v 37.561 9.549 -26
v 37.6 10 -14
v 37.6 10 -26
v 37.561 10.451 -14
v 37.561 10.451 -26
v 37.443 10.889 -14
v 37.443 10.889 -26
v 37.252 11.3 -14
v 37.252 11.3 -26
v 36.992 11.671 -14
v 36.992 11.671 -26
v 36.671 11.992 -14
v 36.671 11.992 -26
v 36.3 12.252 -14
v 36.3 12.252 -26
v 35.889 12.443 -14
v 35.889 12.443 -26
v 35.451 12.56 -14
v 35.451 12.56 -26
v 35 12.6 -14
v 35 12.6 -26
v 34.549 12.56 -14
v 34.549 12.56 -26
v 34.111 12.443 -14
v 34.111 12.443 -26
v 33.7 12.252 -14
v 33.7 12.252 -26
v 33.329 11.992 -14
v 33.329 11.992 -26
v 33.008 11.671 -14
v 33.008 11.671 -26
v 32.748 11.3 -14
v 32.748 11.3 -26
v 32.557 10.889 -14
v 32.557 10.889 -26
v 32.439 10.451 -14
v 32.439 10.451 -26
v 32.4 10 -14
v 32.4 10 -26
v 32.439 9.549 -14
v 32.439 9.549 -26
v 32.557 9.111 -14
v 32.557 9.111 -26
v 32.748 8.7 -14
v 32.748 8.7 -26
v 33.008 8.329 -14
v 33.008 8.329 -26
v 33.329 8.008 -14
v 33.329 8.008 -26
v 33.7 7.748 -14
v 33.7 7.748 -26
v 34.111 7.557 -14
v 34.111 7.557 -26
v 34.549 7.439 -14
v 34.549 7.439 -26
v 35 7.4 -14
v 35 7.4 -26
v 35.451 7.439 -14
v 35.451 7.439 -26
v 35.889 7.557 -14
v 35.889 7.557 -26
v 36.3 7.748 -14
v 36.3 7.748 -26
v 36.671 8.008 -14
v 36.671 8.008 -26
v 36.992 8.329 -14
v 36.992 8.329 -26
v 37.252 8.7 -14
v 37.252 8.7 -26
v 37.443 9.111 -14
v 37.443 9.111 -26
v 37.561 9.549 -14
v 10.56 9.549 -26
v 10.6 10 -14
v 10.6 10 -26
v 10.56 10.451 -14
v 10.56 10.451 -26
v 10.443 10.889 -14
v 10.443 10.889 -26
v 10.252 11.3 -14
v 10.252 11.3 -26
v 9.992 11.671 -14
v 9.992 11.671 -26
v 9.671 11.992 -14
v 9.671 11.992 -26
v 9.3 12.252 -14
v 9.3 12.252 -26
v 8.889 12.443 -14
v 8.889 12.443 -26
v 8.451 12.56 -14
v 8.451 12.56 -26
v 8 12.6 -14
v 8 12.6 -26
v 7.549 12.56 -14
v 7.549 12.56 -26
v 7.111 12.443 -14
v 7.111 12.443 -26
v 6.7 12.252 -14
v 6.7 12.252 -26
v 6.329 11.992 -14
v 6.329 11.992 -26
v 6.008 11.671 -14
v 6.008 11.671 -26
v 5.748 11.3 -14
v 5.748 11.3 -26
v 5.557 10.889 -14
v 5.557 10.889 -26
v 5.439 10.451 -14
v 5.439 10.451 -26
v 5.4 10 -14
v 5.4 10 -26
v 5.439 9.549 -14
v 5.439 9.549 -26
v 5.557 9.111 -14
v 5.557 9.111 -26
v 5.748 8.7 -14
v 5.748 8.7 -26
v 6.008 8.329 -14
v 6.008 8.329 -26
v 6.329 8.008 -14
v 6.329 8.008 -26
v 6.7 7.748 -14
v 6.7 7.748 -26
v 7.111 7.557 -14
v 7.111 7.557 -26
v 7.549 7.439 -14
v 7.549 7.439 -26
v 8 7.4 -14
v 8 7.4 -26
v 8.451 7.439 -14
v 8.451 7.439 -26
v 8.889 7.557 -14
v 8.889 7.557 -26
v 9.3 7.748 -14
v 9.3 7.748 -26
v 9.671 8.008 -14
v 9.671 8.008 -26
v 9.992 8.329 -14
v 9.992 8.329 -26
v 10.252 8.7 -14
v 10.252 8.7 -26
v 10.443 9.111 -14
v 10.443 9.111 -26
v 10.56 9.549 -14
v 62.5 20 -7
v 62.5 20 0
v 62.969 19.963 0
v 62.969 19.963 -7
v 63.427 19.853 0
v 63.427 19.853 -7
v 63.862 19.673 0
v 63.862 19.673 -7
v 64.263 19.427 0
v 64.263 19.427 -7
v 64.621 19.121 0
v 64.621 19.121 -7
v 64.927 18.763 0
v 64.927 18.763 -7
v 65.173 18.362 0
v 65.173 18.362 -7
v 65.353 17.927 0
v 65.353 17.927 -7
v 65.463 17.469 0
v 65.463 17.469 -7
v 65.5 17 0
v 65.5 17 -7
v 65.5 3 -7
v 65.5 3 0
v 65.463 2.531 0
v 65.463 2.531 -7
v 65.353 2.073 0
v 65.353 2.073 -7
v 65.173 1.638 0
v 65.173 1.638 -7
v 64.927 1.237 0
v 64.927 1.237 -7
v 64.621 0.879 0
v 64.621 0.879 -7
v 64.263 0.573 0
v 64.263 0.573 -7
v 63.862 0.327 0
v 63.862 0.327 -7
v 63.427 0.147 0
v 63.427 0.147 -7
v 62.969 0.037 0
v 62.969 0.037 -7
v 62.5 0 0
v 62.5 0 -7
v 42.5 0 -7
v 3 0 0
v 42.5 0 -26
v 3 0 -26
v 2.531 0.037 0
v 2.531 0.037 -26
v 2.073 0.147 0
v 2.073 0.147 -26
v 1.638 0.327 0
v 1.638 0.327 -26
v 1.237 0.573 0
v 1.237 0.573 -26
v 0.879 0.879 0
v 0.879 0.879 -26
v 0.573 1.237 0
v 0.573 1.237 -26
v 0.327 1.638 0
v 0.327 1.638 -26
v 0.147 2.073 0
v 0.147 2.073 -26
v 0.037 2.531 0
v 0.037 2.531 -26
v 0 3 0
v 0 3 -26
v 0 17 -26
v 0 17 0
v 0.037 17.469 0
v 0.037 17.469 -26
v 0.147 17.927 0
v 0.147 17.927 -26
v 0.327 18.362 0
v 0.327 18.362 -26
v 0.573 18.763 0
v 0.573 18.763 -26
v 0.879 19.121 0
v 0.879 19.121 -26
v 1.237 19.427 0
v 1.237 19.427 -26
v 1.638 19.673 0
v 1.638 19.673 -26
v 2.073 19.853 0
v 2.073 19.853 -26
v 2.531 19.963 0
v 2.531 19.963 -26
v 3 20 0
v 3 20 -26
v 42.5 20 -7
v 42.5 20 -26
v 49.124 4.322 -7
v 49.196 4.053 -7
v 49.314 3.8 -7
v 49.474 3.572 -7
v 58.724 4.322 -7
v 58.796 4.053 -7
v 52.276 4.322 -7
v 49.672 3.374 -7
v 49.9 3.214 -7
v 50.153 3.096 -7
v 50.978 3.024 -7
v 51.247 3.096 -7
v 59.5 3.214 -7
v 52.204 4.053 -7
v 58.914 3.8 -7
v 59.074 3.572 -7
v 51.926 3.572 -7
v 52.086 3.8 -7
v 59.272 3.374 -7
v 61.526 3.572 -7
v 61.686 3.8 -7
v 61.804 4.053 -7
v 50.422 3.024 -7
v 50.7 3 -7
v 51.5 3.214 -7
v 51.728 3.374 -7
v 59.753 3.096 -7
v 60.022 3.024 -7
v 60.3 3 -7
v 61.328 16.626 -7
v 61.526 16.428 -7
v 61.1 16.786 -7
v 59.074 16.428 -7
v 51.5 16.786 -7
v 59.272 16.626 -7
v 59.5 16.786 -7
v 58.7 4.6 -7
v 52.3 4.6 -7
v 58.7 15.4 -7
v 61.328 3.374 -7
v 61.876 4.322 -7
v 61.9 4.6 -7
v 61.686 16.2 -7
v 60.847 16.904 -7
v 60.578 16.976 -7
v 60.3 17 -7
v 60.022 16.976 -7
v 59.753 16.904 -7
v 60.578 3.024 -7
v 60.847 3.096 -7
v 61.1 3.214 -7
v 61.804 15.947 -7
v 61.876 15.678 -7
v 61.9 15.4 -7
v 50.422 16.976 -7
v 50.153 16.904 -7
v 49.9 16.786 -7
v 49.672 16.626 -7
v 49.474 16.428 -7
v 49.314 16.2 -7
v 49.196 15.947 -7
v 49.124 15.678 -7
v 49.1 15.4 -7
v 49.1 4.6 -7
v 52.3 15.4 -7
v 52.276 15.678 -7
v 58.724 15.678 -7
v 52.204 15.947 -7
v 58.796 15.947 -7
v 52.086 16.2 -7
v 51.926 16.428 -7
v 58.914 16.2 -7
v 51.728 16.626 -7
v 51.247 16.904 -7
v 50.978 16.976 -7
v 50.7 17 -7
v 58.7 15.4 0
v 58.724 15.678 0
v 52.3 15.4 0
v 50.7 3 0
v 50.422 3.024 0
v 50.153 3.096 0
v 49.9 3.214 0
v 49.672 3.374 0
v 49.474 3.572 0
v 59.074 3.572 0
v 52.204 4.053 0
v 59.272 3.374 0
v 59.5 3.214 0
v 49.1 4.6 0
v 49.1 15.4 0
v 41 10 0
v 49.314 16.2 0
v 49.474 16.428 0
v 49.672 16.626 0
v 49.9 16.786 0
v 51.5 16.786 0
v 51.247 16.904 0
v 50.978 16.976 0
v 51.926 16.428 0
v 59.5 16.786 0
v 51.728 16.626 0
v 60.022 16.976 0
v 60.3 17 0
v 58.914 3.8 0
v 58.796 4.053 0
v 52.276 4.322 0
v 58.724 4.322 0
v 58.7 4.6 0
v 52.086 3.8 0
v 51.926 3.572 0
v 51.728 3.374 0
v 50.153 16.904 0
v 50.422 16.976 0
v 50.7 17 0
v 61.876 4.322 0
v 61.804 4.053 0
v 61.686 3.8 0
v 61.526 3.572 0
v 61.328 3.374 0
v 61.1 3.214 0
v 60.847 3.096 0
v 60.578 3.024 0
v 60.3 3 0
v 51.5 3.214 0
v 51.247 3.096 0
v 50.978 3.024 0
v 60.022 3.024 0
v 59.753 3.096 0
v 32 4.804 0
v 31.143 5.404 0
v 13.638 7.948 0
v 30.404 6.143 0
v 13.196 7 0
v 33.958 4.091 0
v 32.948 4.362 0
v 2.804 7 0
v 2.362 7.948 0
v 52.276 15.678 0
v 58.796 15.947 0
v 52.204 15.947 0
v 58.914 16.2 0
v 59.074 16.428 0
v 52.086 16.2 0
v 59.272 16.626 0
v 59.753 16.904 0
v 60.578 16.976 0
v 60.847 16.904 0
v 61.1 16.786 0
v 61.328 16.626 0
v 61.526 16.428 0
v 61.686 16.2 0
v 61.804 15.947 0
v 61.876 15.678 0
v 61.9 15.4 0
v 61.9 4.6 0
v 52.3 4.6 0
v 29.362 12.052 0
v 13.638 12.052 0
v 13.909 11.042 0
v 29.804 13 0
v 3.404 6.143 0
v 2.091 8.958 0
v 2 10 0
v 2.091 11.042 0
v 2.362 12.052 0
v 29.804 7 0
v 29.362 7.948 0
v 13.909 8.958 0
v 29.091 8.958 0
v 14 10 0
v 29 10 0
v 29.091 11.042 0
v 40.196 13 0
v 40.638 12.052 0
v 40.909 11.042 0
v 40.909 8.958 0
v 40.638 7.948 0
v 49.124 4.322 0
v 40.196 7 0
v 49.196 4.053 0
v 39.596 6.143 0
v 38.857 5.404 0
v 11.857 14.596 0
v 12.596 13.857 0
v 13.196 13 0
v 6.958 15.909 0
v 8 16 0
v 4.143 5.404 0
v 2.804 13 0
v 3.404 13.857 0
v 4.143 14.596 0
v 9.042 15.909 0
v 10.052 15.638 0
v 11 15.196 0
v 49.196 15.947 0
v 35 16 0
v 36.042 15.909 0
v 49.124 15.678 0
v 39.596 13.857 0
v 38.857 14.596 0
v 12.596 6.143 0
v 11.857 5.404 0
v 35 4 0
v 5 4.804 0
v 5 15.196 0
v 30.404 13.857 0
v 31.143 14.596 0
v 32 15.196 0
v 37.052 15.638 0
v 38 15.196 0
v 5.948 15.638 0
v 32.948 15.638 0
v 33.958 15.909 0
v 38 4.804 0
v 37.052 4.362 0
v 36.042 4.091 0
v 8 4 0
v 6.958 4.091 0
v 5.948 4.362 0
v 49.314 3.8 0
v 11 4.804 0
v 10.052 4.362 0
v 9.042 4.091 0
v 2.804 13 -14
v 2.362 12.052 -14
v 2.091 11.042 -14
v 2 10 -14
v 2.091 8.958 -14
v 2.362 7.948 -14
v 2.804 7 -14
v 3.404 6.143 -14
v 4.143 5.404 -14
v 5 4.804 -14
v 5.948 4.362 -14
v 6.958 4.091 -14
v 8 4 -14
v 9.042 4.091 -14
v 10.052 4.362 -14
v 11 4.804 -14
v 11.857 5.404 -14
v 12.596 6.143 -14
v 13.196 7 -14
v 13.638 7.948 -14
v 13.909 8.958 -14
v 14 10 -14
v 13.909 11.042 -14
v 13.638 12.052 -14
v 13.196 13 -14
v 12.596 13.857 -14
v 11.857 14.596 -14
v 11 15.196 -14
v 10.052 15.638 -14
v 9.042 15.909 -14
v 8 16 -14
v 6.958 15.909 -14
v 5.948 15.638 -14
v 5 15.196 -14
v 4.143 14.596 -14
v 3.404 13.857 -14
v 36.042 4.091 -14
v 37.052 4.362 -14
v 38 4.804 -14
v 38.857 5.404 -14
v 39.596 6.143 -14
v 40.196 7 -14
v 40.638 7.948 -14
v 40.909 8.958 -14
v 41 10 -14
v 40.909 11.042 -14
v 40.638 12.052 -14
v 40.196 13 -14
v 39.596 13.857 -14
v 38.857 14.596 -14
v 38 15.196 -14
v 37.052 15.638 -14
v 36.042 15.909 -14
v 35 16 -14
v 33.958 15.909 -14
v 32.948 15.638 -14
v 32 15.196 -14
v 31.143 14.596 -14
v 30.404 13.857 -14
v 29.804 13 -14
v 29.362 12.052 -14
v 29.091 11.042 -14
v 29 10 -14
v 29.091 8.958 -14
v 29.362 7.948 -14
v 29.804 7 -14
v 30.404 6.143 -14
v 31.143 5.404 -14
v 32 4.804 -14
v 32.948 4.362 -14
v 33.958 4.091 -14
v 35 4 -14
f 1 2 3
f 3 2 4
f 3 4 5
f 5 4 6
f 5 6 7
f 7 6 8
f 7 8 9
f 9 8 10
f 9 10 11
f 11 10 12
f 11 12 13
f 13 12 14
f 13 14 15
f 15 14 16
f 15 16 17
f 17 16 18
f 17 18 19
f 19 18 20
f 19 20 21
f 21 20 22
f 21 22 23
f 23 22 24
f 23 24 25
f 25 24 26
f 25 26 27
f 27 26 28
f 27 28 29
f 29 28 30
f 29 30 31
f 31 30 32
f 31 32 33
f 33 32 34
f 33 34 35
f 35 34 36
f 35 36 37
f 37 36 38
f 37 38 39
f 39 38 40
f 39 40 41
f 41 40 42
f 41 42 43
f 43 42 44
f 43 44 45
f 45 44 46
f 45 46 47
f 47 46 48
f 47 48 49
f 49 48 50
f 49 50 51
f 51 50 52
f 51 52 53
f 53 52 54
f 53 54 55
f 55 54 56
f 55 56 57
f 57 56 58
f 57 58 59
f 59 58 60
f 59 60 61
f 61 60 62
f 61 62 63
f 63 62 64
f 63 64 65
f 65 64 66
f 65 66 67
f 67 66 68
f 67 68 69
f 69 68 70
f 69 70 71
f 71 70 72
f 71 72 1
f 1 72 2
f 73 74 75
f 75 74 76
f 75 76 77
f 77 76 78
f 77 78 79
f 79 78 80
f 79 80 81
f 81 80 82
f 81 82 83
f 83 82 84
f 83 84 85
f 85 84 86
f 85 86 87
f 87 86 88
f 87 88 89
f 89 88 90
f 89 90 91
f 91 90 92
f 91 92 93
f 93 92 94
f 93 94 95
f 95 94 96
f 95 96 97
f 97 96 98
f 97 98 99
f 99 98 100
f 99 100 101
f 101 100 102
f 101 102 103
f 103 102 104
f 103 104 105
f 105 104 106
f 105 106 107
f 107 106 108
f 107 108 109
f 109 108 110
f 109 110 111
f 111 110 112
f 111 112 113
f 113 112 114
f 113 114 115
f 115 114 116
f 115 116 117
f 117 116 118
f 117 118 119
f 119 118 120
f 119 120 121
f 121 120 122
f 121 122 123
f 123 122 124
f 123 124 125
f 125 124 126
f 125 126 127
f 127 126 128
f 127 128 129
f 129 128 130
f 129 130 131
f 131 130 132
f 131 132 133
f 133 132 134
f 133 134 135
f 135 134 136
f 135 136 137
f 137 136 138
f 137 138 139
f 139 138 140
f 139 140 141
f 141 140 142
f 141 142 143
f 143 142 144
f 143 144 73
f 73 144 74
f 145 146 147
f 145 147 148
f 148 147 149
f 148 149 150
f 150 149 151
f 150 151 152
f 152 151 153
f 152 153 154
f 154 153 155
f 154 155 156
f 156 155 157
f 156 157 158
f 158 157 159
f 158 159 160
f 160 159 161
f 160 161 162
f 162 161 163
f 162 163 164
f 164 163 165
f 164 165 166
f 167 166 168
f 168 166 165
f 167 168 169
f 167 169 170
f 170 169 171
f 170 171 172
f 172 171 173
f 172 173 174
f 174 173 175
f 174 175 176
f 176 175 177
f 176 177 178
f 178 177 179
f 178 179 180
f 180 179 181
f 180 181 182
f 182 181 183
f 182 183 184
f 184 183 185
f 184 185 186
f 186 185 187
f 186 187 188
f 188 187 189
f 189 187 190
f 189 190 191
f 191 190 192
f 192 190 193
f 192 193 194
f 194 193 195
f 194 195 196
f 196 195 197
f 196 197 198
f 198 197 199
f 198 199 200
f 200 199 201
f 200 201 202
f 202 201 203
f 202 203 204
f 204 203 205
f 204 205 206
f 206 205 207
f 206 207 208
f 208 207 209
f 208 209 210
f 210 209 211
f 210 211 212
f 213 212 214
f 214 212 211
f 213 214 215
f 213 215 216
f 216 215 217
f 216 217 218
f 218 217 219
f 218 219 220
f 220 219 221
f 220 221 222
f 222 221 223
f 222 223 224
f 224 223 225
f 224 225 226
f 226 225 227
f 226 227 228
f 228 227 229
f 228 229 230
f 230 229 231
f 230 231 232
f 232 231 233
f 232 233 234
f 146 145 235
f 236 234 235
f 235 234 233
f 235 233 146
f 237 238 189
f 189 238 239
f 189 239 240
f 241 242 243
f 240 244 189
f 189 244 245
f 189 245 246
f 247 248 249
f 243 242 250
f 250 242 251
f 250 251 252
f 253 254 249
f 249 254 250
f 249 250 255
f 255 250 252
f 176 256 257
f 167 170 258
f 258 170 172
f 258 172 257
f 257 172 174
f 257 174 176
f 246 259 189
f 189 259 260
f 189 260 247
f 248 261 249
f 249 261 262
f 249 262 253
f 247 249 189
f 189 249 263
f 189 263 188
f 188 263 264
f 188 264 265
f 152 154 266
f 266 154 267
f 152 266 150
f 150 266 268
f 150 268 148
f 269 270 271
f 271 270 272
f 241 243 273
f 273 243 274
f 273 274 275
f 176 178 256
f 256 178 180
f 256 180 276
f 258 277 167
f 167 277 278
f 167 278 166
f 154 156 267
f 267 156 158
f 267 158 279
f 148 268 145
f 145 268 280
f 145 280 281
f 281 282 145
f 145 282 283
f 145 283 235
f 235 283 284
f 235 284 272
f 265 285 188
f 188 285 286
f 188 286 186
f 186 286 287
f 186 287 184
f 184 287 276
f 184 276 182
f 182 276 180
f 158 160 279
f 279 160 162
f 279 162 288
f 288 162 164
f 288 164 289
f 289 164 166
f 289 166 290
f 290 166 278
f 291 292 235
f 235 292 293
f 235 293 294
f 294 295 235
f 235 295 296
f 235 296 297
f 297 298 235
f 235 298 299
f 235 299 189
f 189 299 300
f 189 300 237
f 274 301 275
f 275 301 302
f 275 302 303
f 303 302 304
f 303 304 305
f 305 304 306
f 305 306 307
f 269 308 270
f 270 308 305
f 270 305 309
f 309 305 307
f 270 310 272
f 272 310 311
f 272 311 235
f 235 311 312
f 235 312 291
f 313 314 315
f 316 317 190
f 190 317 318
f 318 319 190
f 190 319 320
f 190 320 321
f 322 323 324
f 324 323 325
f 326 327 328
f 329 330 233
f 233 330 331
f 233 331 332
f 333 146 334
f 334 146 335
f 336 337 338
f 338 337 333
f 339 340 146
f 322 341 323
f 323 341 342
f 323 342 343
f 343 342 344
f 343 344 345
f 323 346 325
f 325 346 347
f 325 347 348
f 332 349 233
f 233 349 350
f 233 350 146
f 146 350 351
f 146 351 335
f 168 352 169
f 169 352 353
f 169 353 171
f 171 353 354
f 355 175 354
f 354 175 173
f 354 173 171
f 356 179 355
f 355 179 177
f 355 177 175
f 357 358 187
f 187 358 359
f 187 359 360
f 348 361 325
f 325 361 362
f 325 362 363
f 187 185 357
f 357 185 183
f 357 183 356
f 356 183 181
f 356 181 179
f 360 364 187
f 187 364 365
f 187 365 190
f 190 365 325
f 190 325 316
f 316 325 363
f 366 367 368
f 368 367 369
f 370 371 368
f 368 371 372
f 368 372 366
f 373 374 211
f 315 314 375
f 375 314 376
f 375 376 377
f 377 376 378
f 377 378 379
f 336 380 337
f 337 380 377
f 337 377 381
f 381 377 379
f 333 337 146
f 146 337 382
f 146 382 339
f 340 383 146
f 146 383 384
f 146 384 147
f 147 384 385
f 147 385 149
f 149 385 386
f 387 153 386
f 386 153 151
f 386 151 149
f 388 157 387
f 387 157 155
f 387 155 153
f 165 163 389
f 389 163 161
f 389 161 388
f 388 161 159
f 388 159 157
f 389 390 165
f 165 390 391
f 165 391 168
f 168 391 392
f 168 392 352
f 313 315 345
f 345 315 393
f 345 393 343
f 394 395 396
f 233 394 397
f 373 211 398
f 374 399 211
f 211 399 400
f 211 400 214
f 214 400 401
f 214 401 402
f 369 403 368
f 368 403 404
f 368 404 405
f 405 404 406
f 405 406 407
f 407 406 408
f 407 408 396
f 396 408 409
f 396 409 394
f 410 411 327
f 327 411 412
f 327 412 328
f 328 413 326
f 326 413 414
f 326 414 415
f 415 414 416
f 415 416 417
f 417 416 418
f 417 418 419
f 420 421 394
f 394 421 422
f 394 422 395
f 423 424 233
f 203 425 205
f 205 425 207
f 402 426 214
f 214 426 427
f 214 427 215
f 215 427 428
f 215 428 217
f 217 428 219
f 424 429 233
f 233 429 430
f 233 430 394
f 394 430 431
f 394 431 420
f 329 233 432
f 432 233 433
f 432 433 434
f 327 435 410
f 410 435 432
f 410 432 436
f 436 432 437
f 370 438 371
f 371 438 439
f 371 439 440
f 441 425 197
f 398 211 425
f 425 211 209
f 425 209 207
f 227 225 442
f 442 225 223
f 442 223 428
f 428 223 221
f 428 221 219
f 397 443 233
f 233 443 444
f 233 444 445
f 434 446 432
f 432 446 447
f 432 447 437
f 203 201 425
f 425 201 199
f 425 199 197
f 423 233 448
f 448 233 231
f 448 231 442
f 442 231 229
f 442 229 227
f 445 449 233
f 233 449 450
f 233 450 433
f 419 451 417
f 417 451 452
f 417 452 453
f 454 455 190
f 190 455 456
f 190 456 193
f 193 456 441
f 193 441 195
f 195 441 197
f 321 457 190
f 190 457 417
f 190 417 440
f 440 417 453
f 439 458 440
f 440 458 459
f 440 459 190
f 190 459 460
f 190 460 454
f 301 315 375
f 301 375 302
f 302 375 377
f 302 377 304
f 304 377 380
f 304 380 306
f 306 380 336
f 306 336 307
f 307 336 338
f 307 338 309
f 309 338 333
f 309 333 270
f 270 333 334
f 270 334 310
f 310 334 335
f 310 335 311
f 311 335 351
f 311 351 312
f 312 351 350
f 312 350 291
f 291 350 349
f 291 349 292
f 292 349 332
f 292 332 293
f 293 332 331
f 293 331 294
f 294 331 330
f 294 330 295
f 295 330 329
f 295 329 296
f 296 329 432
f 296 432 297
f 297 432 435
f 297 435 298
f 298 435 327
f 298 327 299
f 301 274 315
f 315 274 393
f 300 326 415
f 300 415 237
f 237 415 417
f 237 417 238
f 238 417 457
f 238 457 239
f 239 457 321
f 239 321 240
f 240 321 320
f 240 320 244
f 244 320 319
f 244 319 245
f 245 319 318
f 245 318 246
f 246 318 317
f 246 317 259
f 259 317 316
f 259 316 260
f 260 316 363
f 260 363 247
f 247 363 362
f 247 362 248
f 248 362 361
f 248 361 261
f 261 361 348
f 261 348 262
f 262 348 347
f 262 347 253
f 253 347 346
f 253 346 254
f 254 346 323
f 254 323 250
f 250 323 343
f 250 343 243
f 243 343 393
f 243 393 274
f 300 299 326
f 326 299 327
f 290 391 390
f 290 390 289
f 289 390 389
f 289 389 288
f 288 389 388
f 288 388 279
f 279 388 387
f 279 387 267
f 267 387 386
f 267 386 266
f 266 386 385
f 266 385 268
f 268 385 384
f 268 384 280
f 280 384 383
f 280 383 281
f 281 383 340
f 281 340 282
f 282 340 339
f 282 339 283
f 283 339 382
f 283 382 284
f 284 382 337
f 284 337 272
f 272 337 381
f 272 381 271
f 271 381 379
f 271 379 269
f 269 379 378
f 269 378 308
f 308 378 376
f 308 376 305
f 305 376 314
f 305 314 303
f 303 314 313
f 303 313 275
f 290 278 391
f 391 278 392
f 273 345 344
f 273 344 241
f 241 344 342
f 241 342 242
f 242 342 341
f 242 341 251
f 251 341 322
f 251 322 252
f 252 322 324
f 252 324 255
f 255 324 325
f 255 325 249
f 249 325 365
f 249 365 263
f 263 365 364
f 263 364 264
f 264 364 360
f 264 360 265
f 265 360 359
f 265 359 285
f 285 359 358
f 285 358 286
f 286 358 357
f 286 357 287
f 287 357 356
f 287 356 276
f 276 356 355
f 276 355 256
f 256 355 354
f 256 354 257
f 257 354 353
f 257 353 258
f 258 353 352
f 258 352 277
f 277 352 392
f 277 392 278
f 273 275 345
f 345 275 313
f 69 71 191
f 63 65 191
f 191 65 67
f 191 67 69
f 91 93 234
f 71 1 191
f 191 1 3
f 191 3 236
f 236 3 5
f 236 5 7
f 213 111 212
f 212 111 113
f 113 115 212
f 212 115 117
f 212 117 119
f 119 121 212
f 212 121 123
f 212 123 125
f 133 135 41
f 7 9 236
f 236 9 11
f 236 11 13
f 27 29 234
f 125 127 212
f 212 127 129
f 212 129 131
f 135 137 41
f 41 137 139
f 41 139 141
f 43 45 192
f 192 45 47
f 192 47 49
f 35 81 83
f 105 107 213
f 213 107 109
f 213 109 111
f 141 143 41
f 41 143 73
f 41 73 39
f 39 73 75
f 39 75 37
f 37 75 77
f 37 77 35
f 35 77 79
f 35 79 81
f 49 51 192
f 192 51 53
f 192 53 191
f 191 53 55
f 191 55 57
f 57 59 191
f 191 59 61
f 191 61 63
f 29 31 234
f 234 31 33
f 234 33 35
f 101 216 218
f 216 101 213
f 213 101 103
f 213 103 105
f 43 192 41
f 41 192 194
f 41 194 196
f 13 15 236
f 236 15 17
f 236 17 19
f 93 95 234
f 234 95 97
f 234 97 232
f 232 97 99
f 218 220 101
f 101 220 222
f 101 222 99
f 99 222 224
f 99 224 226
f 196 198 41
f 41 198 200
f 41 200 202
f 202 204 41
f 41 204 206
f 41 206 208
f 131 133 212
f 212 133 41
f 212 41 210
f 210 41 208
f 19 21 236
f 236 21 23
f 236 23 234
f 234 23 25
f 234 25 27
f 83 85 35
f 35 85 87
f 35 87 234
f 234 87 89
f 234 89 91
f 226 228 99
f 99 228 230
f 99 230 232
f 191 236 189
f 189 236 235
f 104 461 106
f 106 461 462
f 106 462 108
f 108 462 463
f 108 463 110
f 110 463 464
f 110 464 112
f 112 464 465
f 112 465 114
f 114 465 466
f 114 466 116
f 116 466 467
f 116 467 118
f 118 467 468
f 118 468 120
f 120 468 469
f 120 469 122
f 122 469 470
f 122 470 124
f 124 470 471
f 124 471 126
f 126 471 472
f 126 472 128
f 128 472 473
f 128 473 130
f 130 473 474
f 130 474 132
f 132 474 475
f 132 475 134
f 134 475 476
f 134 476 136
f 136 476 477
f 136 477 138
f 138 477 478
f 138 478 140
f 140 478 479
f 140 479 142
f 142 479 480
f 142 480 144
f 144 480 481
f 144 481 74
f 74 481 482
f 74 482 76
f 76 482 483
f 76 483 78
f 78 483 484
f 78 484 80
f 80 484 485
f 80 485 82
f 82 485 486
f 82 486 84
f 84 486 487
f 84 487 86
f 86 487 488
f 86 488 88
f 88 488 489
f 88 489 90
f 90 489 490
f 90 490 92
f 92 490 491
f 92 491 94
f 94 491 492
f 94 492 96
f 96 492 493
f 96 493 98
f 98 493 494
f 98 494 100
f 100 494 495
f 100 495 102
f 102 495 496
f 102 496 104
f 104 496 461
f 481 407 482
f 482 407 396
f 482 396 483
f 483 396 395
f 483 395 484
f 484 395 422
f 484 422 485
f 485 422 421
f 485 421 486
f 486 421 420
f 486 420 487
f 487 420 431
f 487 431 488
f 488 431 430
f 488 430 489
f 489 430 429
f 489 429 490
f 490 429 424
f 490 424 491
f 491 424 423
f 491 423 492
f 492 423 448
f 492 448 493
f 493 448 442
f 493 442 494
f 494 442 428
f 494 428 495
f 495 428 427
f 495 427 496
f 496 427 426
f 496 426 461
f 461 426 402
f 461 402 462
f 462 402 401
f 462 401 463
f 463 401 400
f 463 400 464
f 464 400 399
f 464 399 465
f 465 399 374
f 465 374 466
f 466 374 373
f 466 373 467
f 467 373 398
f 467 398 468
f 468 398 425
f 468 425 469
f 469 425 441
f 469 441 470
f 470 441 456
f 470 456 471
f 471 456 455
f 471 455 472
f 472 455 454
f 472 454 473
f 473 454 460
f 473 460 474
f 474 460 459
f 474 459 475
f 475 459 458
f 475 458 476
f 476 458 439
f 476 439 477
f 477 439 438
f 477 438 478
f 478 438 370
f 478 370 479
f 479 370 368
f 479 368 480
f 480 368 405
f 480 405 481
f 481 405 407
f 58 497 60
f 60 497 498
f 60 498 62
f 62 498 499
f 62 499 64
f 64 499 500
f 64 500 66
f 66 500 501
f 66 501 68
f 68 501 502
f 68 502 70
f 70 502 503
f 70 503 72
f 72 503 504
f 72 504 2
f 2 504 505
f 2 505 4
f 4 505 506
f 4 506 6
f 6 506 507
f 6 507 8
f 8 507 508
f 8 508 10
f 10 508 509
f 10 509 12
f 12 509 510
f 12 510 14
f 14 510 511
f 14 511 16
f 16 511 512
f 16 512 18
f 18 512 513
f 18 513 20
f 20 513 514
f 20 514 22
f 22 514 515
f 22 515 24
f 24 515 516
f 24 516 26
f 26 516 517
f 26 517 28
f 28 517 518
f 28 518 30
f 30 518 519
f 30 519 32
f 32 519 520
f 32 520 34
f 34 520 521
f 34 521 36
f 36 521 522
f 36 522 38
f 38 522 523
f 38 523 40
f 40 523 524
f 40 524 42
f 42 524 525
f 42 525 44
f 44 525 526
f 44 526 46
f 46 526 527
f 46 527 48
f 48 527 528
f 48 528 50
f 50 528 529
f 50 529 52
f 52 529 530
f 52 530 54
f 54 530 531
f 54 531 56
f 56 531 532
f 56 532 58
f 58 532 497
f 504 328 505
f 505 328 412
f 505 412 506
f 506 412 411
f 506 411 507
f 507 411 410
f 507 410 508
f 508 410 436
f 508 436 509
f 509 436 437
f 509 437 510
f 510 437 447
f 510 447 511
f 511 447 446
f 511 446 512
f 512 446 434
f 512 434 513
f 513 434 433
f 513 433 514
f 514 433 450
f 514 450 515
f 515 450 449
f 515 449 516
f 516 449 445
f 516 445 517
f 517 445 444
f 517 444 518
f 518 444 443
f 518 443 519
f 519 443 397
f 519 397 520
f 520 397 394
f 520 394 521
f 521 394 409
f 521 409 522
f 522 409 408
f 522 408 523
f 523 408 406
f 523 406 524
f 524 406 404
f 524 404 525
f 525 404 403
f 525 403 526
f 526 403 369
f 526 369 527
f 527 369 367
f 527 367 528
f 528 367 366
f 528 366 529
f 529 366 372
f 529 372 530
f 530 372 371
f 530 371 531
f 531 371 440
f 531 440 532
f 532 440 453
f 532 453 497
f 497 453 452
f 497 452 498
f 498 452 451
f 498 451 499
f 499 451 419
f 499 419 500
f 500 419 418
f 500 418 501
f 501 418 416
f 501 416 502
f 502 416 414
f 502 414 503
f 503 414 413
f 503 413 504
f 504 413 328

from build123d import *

# Parameters (mm, degrees)
SKETCH1_R           = 2.6
BOSS_EXTRUDE1_DEPTH = 7
BOSS_EXTRUDE2_DEPTH = 19
SKETCH3_R           = 2.6
CUT_EXTRUDE1_DEPTH  = 19
SKETCH4_R           = 6
CUT_EXTRUDE2_DEPTH  = 14


with BuildPart() as part:
    # Sketch1 → Boss-Extrude1 (new body)
    with BuildSketch(Plane.XY):
        with BuildLine():
            Line((3, 0), (62.5, 0))
            ThreePointArc((62.5, 0), (64.621320344, 0.878679656), (65.5, 3))
            Line((65.5, 3), (65.5, 17))
            ThreePointArc((65.5, 17), (64.621320344, 19.121320344), (62.5, 20))
            Line((62.5, 20), (3, 20))
            ThreePointArc((3, 20), (0.878679656, 19.121320344), (0, 17))
            Line((0, 17), (0, 3))
            ThreePointArc((0, 3), (0.878679656, 0.878679656), (3, 0))
        make_face()
        with Locations((8, 10)):
            Circle(SKETCH1_R, mode=Mode.SUBTRACT)
        with Locations((35, 10)):
            Circle(SKETCH1_R, mode=Mode.SUBTRACT)
        with BuildLine():
            Line((49.1, 15.4), (49.1, 4.6))
            ThreePointArc((49.1, 4.6), (50.7, 3), (52.3, 4.6))
            Line((52.3, 4.6), (52.3, 15.4))
            ThreePointArc((52.3, 15.4), (50.7, 17), (49.1, 15.4))
        make_face(mode=Mode.SUBTRACT)
        with BuildLine():
            Line((58.7, 15.4), (58.7, 4.6))
            ThreePointArc((58.7, 4.6), (60.3, 3), (61.9, 4.6))
            Line((61.9, 4.6), (61.9, 15.4))
            ThreePointArc((61.9, 15.4), (60.3, 17), (58.7, 15.4))
        make_face(mode=Mode.SUBTRACT)
    extrude(amount=-BOSS_EXTRUDE1_DEPTH)

    # Sketch2 → Boss-Extrude2 (add)
    with BuildSketch(Plane(origin=(0, 0, -7), x_dir=(-1, 0, 0), z_dir=(0, 0, -1))):
        with BuildLine():
            Line((-42.5, 20), (-42.5, 0))
            Line((-42.5, 0), (-3, 0))
            ThreePointArc((-3, 0), (-0.878679656, 0.878679656), (0, 3))
            Line((0, 3), (0, 17))
            ThreePointArc((0, 17), (-0.878679656, 19.121320344), (-3, 20))
            Line((-3, 20), (-42.5, 20))
        make_face()
    extrude(amount=BOSS_EXTRUDE2_DEPTH)

    # Sketch3 → Cut-Extrude1 (cut)
    with BuildSketch(Plane.XY.offset(-7)):
        with Locations((8, 10)):
            Circle(SKETCH3_R)
        with Locations((35, 10)):
            Circle(SKETCH3_R)
    extrude(amount=-CUT_EXTRUDE1_DEPTH, mode=Mode.SUBTRACT)

    # Sketch4 → Cut-Extrude2 (cut)
    with BuildSketch(Plane.XY):
        with Locations((8, 10)):
            Circle(SKETCH4_R)
        with Locations((35, 10)):
            Circle(SKETCH4_R)
    extrude(amount=-CUT_EXTRUDE2_DEPTH, mode=Mode.SUBTRACT)


solid = part.part
